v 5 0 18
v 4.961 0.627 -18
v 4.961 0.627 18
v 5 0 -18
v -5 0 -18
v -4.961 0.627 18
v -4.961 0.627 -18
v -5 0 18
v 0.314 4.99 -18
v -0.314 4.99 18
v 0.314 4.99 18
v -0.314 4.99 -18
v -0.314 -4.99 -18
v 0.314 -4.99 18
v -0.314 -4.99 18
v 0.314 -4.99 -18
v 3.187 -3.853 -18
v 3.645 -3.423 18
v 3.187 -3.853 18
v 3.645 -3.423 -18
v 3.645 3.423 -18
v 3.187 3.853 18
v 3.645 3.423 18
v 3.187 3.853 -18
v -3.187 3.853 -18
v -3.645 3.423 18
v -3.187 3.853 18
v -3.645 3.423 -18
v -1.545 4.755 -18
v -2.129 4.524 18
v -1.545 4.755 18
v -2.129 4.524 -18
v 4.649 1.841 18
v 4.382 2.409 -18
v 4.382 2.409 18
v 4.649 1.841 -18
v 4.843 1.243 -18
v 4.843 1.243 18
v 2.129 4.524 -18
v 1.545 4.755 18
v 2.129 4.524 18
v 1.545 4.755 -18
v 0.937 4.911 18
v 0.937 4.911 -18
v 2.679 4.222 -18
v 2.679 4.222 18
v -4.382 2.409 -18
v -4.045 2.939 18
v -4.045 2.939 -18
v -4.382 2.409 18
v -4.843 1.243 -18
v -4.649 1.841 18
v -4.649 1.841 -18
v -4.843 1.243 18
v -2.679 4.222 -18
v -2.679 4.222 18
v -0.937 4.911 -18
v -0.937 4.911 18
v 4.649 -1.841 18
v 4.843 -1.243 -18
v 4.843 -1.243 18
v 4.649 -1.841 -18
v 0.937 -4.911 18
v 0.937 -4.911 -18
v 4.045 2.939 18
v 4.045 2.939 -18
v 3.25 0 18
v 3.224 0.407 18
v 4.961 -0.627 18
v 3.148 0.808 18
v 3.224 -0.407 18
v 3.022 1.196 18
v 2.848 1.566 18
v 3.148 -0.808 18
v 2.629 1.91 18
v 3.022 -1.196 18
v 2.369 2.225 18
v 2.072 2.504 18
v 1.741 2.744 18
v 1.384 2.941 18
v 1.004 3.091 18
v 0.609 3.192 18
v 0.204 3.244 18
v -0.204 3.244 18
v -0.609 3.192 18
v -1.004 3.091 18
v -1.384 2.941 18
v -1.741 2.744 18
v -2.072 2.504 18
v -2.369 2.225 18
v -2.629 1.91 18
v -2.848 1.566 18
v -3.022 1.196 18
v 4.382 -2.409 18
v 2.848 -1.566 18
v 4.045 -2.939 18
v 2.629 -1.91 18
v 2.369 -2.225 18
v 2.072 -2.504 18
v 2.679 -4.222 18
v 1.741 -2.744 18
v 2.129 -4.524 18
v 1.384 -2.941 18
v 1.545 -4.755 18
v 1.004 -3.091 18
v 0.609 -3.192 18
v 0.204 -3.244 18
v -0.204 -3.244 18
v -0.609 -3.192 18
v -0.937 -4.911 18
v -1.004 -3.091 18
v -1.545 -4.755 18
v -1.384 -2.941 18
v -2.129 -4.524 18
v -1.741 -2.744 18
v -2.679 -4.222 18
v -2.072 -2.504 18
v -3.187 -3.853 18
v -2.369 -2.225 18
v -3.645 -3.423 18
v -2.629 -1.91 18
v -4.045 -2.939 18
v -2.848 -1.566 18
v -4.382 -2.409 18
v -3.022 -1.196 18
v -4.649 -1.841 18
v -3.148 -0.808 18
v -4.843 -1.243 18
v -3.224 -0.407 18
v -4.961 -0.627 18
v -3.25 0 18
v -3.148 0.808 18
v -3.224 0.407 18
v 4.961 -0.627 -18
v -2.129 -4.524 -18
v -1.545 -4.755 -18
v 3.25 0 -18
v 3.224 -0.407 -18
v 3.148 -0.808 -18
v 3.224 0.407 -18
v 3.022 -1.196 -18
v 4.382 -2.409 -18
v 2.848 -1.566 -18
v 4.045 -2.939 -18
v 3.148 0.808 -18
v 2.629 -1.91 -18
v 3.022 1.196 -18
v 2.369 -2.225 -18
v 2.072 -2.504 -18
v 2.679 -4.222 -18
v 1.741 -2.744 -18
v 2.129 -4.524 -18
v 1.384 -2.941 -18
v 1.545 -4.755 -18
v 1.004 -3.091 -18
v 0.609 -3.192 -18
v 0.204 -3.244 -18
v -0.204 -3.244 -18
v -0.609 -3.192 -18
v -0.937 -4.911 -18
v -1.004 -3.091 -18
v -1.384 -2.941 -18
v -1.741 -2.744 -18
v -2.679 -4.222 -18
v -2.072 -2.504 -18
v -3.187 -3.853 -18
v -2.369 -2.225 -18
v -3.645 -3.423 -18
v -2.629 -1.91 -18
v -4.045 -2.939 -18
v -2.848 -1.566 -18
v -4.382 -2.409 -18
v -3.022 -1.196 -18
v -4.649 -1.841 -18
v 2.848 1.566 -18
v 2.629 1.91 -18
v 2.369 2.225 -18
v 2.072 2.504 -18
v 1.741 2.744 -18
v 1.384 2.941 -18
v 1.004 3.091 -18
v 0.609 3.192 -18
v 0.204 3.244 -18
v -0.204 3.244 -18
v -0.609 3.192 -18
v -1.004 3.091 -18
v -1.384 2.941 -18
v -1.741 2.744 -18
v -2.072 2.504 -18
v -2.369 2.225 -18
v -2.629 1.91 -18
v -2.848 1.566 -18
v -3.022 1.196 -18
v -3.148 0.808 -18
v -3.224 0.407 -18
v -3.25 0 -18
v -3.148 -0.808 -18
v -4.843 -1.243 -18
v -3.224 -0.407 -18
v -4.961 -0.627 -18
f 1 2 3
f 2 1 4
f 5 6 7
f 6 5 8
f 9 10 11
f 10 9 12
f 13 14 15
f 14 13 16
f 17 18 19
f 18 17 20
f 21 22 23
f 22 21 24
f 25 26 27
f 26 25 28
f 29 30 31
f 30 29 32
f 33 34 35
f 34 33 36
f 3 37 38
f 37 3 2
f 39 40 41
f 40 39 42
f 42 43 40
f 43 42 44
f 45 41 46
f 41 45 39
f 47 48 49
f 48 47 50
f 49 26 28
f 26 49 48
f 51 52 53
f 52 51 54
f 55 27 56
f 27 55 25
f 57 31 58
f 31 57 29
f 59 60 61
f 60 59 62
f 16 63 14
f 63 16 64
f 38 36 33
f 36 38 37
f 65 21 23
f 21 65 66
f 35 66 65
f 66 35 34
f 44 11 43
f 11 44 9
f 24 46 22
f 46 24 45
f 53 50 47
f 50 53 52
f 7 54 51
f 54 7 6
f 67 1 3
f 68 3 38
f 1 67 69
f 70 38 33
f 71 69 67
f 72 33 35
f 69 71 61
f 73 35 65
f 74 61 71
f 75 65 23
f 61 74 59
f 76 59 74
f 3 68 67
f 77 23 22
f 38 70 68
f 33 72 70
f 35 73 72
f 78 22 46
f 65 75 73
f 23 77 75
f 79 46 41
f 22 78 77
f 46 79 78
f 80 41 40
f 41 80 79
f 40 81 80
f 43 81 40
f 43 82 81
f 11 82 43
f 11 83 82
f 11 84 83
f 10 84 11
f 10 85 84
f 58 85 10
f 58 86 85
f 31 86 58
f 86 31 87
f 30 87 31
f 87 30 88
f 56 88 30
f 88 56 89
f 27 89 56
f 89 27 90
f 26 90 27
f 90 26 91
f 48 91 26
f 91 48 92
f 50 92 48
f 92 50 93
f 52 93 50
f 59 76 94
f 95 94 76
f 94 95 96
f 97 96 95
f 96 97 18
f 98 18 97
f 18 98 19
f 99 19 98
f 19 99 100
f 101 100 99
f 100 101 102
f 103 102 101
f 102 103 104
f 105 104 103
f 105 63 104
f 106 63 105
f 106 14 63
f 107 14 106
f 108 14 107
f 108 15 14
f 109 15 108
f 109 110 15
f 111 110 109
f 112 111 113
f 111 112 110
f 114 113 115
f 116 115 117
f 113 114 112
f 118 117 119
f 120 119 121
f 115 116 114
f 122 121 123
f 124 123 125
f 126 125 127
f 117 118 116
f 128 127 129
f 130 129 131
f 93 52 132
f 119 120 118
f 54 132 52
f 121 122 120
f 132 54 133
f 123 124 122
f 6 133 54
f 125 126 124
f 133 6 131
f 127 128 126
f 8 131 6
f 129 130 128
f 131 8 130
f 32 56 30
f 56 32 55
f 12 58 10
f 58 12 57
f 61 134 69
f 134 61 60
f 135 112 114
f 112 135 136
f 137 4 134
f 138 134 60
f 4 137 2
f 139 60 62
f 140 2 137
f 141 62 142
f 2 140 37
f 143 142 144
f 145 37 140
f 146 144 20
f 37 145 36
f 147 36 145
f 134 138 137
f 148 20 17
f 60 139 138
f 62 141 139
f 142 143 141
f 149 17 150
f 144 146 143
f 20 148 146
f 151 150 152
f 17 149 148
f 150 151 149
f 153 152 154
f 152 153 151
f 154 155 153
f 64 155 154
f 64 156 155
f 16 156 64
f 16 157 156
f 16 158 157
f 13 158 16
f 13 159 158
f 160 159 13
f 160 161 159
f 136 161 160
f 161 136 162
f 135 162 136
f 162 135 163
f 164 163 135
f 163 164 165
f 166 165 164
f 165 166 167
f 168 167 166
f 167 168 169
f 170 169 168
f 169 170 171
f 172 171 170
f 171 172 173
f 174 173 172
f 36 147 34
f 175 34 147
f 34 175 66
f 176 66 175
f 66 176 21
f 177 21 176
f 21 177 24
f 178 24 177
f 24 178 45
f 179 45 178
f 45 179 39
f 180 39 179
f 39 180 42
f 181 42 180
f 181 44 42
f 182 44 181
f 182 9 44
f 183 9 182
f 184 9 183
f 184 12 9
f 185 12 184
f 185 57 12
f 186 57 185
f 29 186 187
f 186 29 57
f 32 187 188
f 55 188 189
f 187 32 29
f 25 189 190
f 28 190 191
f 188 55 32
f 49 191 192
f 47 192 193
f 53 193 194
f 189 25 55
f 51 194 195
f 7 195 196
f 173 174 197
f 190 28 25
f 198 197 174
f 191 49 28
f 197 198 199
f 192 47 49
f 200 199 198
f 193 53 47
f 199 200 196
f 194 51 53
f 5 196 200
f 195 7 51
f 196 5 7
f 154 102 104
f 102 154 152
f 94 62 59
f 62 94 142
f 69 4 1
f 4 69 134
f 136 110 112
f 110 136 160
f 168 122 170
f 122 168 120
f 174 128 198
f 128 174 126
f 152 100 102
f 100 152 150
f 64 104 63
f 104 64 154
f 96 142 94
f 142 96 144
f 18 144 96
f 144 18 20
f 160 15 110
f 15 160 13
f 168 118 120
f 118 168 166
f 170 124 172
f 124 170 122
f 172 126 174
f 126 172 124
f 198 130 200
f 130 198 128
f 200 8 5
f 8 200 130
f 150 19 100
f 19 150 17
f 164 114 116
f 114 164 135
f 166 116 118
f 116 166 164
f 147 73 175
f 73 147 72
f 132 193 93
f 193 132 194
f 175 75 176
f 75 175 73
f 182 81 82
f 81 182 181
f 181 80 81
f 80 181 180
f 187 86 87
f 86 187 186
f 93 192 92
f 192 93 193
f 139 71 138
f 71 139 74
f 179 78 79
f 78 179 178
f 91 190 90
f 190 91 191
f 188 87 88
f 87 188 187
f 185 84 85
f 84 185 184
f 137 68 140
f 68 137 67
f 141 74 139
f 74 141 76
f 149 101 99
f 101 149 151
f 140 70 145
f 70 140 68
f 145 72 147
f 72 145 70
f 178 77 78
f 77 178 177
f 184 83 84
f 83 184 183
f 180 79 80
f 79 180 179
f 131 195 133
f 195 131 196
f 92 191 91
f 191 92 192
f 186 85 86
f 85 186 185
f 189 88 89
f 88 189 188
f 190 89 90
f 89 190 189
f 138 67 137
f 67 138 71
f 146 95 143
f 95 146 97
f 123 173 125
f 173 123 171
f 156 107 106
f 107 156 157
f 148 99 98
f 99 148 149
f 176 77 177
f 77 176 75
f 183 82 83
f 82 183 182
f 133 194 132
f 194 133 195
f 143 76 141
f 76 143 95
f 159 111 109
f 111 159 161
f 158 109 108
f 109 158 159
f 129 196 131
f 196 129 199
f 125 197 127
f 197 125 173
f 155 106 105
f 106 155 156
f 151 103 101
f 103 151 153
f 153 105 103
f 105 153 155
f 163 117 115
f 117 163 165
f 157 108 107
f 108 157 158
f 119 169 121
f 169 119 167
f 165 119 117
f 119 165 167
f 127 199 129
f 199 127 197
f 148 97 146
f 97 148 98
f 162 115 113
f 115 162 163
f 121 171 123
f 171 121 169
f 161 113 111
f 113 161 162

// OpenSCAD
$fn = 50;


difference() {
	union() {
		translate(v = [0, 0, -18.0000000000]) {
			cylinder(h = 36, r = 5.0000000000);
		}
	}
	union() {
		translate(v = [0, 0, -100.0000000000]) {
			cylinder(h = 200, r = 3.2500000000);
		}
	}
}
